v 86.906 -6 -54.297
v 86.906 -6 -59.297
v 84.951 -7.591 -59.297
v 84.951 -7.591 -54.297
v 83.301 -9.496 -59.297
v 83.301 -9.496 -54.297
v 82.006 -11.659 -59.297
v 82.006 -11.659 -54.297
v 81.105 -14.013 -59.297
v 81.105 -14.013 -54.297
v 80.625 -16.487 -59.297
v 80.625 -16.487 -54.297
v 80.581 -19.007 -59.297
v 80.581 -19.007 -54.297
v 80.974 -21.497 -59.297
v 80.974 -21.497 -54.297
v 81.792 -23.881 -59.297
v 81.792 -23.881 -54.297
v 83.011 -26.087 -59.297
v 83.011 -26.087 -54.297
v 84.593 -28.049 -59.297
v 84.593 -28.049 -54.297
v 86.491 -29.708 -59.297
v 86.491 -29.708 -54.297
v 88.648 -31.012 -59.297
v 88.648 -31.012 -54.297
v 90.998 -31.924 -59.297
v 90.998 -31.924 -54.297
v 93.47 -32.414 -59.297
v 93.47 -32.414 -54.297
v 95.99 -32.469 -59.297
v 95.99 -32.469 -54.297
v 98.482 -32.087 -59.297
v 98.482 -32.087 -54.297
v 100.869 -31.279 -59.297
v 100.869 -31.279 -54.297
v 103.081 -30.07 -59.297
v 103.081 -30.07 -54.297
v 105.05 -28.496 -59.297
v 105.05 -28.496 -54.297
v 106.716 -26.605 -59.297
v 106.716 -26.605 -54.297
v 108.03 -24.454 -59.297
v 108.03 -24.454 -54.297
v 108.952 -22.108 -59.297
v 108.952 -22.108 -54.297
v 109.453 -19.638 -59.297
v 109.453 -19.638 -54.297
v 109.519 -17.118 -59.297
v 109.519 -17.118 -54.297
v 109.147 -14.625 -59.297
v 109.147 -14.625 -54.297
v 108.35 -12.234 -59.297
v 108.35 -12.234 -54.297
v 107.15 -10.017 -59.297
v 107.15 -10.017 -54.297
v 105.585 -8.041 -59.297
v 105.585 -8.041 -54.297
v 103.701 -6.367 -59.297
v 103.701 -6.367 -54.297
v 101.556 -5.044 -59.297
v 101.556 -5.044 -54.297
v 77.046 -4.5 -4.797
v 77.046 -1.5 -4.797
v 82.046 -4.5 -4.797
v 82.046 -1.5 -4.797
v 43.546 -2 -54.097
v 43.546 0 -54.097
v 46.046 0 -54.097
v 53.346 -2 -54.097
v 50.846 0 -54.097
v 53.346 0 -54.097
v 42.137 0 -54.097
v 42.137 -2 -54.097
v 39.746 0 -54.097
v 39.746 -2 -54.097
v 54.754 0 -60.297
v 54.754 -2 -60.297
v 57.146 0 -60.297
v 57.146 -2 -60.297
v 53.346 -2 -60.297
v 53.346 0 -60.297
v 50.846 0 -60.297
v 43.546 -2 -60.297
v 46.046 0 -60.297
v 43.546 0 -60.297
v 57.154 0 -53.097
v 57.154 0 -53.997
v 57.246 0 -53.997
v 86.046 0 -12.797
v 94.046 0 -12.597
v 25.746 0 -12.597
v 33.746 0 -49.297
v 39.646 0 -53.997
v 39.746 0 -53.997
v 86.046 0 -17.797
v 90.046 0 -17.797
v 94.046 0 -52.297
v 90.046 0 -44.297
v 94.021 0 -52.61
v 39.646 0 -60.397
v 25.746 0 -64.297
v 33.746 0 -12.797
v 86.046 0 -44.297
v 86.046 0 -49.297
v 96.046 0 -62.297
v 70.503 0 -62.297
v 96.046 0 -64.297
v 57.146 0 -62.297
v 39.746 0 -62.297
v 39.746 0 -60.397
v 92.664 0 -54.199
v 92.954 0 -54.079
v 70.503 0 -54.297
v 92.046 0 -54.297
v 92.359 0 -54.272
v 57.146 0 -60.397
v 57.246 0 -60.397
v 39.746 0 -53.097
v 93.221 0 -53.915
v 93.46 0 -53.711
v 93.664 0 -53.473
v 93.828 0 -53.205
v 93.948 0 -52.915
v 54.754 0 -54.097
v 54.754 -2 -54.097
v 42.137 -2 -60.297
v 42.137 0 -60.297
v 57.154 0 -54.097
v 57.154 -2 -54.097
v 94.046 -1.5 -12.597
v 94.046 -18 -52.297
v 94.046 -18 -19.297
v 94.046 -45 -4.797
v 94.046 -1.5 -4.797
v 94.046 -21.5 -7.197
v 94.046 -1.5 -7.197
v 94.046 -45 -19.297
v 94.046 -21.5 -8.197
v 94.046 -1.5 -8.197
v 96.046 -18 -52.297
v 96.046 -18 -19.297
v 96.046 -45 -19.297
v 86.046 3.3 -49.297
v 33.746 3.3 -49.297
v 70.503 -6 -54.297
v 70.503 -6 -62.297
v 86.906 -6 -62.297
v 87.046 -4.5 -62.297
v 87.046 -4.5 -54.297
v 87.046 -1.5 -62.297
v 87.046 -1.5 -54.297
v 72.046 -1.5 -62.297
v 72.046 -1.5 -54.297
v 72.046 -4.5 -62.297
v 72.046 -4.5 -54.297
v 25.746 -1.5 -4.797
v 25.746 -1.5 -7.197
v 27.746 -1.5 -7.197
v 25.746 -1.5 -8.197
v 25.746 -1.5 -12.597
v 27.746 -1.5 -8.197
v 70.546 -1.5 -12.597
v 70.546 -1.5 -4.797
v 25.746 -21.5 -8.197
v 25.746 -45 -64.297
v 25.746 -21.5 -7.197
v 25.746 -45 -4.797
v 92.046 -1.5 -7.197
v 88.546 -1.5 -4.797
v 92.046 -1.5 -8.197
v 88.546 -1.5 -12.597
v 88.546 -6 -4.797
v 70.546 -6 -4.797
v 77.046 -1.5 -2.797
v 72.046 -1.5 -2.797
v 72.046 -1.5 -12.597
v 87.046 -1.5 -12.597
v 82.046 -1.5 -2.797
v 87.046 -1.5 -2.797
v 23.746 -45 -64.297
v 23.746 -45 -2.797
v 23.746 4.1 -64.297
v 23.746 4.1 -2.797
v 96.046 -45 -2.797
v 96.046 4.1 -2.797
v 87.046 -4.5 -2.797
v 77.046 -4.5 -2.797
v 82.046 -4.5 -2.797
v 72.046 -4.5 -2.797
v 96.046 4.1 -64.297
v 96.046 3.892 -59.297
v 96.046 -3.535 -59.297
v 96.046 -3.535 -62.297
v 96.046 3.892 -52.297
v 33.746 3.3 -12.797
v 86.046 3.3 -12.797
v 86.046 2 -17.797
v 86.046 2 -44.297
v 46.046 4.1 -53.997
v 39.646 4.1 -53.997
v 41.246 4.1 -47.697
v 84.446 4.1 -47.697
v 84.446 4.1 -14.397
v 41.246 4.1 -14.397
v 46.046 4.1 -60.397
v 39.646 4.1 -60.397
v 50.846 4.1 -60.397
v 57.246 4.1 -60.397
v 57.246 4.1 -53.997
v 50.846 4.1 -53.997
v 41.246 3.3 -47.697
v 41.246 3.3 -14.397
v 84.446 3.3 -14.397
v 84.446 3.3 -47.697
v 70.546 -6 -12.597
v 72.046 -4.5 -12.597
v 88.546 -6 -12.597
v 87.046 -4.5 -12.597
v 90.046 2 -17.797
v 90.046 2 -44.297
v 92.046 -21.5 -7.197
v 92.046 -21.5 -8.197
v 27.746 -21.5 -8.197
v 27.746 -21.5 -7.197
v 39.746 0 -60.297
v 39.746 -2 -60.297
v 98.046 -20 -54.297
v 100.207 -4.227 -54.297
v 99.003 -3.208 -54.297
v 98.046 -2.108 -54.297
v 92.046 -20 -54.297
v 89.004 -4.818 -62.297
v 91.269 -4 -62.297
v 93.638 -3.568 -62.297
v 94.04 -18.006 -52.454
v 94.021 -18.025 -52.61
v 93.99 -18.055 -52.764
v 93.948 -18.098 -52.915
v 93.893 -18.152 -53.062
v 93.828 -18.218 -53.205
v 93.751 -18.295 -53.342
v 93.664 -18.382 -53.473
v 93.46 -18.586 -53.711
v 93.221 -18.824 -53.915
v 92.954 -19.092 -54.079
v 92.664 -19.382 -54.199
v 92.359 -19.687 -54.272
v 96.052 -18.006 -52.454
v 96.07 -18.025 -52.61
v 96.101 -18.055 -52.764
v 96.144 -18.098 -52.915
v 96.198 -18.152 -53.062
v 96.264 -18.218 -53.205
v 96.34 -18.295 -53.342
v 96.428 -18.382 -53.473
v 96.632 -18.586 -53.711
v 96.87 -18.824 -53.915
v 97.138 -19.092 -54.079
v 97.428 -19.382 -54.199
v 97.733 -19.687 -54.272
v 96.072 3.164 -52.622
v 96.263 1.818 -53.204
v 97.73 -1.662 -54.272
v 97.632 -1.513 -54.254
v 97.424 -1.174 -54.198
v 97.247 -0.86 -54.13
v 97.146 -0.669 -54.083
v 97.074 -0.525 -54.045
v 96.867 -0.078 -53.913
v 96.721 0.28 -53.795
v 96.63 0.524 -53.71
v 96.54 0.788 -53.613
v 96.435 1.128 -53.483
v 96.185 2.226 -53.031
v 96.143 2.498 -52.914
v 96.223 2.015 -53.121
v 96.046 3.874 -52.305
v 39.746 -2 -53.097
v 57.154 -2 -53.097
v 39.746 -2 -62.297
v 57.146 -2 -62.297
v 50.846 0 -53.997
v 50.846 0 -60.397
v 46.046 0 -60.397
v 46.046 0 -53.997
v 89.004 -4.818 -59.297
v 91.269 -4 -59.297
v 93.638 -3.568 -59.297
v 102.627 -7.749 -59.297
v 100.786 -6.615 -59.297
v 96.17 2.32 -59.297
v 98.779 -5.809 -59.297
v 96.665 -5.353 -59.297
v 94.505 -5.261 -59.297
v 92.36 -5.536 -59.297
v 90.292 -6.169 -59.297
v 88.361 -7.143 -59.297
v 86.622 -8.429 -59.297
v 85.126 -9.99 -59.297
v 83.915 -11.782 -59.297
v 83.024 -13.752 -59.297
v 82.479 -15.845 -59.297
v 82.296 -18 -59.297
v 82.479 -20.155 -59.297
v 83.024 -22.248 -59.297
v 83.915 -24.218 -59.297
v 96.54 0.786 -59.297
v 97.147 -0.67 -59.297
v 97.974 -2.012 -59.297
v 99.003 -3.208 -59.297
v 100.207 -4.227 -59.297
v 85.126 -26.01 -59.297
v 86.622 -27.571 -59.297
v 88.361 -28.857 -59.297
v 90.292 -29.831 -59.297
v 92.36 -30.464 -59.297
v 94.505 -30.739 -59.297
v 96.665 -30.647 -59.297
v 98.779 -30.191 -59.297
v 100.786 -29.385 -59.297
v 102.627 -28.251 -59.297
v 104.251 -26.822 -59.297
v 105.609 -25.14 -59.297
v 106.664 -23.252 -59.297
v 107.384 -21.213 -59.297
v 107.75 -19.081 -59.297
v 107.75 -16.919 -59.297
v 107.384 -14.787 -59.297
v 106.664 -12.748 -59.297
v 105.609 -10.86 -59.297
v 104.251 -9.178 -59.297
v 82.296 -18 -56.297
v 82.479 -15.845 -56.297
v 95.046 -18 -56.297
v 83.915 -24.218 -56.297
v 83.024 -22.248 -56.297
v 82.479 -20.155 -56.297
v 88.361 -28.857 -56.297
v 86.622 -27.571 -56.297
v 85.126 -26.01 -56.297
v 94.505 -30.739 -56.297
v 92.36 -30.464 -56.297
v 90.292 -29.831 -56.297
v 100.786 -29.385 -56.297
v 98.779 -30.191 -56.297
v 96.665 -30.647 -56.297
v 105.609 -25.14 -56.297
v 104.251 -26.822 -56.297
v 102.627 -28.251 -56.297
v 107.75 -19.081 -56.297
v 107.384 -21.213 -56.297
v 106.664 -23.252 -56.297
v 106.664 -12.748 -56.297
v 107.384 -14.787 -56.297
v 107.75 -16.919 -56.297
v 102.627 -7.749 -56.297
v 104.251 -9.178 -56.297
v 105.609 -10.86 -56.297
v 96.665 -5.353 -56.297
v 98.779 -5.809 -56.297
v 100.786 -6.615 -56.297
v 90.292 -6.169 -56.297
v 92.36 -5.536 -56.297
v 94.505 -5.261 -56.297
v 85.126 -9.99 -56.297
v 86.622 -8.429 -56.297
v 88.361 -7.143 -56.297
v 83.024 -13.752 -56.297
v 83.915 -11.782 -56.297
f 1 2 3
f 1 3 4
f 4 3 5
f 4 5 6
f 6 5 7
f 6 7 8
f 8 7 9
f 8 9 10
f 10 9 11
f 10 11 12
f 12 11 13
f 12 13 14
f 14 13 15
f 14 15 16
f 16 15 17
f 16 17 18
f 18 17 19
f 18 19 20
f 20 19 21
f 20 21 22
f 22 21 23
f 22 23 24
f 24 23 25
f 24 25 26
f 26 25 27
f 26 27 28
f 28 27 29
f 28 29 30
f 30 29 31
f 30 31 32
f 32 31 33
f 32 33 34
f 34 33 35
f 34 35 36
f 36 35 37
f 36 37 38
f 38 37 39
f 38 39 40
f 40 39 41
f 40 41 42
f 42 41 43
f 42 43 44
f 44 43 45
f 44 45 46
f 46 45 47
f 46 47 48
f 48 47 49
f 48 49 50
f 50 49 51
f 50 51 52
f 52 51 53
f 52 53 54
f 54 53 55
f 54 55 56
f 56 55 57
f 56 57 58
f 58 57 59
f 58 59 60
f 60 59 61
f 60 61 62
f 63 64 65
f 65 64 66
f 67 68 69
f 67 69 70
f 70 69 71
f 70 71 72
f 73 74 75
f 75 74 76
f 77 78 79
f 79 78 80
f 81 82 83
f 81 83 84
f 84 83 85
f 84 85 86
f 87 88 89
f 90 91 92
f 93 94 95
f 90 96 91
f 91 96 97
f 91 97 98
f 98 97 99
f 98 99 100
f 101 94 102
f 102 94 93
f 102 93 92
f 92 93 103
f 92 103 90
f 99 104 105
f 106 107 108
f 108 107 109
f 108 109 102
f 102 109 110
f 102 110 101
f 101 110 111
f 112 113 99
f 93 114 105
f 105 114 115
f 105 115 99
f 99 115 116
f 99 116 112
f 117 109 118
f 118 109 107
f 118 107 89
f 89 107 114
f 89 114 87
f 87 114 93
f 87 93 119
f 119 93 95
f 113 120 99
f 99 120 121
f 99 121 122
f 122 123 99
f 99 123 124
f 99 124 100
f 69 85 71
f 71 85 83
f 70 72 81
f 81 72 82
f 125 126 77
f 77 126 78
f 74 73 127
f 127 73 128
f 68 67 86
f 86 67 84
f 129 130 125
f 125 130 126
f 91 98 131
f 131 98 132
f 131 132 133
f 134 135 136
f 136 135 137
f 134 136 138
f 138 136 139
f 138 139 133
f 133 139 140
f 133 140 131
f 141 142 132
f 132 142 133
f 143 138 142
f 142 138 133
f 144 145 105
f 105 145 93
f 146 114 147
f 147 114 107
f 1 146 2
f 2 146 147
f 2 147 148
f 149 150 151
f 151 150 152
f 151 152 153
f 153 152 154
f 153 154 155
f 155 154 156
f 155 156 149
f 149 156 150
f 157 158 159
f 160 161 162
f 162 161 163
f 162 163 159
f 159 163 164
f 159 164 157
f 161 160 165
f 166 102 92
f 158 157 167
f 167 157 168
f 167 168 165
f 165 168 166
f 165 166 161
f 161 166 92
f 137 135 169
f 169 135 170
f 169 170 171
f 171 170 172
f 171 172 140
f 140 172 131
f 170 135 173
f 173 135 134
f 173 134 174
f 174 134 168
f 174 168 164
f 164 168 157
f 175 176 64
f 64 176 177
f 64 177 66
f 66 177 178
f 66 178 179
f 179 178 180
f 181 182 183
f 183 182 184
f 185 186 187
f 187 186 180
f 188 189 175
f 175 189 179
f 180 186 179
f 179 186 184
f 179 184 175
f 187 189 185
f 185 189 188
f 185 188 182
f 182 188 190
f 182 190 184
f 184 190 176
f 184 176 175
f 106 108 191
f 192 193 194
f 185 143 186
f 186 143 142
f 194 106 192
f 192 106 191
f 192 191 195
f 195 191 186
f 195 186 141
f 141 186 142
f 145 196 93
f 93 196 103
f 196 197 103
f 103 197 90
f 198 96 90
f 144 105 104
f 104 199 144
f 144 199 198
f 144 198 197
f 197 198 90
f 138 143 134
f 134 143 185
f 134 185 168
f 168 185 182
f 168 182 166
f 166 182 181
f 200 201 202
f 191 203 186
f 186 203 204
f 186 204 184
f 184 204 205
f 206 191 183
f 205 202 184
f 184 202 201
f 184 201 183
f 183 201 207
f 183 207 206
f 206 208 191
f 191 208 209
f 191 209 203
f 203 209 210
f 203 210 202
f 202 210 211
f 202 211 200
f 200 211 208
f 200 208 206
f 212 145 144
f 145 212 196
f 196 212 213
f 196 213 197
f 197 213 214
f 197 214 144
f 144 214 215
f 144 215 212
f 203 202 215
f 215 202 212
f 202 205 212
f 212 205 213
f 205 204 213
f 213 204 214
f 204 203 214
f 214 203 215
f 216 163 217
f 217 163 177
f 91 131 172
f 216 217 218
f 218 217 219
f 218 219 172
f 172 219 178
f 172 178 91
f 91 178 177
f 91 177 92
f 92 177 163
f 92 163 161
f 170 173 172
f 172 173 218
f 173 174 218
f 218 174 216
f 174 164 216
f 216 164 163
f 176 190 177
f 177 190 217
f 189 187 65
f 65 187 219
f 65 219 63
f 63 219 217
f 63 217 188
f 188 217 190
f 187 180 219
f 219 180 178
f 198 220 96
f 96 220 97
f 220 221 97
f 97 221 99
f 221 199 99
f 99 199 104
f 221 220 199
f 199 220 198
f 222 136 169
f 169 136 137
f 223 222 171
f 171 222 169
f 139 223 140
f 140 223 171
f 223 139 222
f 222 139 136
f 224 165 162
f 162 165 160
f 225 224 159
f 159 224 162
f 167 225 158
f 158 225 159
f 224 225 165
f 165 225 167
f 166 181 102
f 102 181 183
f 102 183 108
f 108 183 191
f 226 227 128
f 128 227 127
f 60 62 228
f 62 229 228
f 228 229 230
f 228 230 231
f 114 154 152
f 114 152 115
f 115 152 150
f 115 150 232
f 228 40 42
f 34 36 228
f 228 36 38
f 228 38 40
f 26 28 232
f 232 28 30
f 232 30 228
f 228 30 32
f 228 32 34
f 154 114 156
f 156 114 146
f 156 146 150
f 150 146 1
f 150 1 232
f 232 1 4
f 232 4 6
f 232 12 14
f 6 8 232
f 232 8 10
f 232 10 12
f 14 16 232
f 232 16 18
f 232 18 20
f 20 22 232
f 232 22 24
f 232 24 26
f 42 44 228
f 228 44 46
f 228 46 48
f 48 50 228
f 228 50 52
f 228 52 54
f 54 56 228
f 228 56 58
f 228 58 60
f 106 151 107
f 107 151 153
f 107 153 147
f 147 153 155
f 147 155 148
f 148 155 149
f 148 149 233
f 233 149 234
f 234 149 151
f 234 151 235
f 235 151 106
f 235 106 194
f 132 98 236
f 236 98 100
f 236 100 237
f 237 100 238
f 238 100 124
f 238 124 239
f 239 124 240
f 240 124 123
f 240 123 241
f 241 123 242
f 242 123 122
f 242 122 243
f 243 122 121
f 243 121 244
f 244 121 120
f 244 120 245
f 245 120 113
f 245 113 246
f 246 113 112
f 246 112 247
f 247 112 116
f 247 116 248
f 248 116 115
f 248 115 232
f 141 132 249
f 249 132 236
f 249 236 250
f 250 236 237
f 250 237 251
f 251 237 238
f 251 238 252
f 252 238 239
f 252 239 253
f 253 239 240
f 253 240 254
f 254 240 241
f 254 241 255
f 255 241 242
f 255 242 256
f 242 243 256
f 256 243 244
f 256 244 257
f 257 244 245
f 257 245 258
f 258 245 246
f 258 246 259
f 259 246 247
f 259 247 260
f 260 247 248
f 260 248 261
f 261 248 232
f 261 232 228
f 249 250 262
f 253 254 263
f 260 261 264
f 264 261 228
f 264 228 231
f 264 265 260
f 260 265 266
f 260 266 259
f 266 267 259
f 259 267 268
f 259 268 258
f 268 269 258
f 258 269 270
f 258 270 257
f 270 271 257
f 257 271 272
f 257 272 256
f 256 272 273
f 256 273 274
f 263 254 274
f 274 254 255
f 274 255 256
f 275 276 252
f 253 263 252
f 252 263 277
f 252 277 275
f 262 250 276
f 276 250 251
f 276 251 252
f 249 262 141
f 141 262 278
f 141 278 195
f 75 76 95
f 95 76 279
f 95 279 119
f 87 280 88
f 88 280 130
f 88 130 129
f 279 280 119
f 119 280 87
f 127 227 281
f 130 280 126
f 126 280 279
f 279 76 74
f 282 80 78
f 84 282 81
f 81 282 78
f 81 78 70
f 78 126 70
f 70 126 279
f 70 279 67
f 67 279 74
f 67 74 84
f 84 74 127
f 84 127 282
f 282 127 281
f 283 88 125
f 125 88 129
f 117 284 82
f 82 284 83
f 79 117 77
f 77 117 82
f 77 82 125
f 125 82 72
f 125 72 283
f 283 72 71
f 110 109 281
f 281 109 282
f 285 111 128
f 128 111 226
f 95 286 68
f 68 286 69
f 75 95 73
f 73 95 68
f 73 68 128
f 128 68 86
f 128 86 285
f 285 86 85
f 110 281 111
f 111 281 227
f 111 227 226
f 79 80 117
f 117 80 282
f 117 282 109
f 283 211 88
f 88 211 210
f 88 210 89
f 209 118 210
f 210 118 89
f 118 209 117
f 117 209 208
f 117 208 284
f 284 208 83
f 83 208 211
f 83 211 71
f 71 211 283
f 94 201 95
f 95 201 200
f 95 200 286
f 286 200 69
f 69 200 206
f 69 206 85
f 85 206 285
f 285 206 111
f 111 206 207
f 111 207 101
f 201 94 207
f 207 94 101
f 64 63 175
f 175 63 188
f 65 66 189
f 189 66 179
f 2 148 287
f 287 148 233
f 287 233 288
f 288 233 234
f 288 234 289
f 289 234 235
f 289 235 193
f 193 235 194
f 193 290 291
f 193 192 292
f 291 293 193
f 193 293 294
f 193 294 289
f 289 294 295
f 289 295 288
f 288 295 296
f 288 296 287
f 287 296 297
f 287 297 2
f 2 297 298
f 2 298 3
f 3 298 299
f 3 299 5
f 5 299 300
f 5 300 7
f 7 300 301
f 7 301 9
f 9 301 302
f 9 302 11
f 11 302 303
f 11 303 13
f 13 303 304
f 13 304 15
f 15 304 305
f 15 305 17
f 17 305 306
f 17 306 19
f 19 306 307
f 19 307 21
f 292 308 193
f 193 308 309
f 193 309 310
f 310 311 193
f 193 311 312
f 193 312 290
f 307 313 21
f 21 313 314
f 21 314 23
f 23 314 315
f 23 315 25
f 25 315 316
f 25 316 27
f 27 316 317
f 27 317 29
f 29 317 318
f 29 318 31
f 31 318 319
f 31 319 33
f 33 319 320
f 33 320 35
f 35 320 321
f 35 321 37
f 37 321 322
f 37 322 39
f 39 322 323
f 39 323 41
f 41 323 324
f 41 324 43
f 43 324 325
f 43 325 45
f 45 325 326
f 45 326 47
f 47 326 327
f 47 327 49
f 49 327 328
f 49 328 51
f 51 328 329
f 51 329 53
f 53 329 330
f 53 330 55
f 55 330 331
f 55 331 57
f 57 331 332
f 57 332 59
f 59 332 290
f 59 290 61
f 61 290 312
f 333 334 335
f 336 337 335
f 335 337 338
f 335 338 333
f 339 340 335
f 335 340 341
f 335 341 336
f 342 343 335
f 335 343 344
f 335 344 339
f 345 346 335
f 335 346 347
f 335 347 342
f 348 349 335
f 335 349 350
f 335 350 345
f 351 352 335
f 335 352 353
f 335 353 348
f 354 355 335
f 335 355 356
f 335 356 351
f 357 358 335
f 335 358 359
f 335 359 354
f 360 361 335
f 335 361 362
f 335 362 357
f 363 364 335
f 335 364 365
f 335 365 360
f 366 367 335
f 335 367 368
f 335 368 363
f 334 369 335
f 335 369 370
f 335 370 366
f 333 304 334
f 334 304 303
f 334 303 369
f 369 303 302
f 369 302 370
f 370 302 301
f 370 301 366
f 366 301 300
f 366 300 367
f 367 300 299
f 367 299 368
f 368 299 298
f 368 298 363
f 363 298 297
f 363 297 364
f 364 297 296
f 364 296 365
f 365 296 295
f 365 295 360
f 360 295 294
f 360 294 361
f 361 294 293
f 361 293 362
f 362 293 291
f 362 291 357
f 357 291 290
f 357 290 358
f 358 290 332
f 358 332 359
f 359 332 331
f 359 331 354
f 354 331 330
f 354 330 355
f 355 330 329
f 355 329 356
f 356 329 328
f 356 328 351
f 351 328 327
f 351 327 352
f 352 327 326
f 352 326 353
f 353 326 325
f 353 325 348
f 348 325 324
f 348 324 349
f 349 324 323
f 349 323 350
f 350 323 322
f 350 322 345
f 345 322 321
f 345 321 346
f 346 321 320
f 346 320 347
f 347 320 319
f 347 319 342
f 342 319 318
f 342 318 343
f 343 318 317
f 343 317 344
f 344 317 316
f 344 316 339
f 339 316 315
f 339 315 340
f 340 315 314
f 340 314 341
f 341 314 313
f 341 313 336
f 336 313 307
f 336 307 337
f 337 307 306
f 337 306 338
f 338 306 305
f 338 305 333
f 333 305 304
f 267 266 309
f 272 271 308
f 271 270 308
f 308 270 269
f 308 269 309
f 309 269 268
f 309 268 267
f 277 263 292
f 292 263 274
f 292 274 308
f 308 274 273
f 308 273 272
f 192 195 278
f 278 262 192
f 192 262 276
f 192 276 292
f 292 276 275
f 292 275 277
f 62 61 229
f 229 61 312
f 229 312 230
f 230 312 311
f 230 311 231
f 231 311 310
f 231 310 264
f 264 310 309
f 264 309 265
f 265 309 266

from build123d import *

# Parameters (mm, degrees)
SKETCH1_W            = 72.3
SKETCH1_H            = 56.5
SKETCH1_W_2          = 52.3
SKETCH1_H_2          = 36.5
BOSS_EXTRUDE1_DEPTH  = 3.3
SKETCH2_W            = 72.3
SKETCH2_H            = 2
BOSS_EXTRUDE2_DEPTH  = 45
SKETCH3_W            = 2
SKETCH3_H            = 45
BOSS_EXTRUDE3_DEPTH  = 54.5
SKETCH5_W            = 72.3
SKETCH5_H            = 56.5
SKETCH5_W_2          = 43.2
SKETCH5_H_2          = 33.3
BOSS_EXTRUDE6_DEPTH  = 0.8
SKETCH6_W            = 68.3
SKETCH6_H            = 1.5
BOSS_EXTRUDE7_DEPTH  = 7.8
BOSS_EXTRUDE8_DEPTH  = 7.8
SKETCH8_W            = 18.0427139
SKETCH8_H            = 6
SKETCH8_W_2          = 15
SKETCH8_H_2          = 3
BOSS_EXTRUDE9_DEPTH  = 10
SKETCH9_W            = 4
SKETCH9_H            = 26.5
CUT_EXTRUDE1_DEPTH   = 2
SKETCH10_W           = 2
SKETCH10_H           = 30
CUT_EXTRUDE2_DEPTH   = 40
SKETCH11_W           = 2
SKETCH11_H           = 1
BOSS_EXTRUDE10_DEPTH = 20
SKETCH13_W           = 15
SKETCH13_H           = 3
BOSS_EXTRUDE11_DEPTH = 5
SKETCH12_W           = 6.2
SKETCH12_H           = 6.2
CUT_EXTRUDE3_DEPTH   = 10
SKETCH14_W           = 18.0427139
SKETCH14_H           = 5
CUT_EXTRUDE4_DEPTH   = 25
SKETCH15_W           = 29.613072231
SKETCH15_H           = 15.101269166
CUT_EXTRUDE5_DEPTH   = 2
SKETCH17_W           = 5.5
SKETCH17_H           = 8
BOSS_EXTRUDE12_DEPTH = 6
SKETCH20_W           = 2
SKETCH20_H           = 3
BOSS_EXTRUDE14_DEPTH = 43
SKETCH21_R           = 14.5
BOSS_EXTRUDE15_DEPTH = 8
SKETCH22_R           = 12.75
CUT_EXTRUDE6_DEPTH   = 6
FILLET1_R            = 2
SKETCH23_W           = 17.408302374
SKETCH23_H           = 1
BOSS_EXTRUDE16_DEPTH = 2
BOSS_EXTRUDE17_REACH = 131.062
SKETCH24_W           = 1.408302374
SKETCH24_H           = 2
SKETCH24_W_2         = 1.408302375
SKETCH25_W           = 17.4
SKETCH25_H           = 2
BOSS_EXTRUDE18_DEPTH = 2
SKETCH26_W           = 6.4
SKETCH26_H           = 6.4
CUT_EXTRUDE7_DEPTH   = 4.1
SKETCH28_W           = 5
SKETCH28_H           = 3
CUT_EXTRUDE9_DEPTH   = 2
SKETCH29_R           = 14.5
SKETCH29_R_2         = 12.75
CUT_EXTRUDE10_DEPTH  = 3
FILLET2_R            = 10


with BuildPart() as part:
    # Sketch1 → Boss-Extrude1 (new body)
    with BuildSketch(Plane(origin=(0, 0, 0), x_dir=(1, 0, 0), z_dir=(0, 1, 0))):
        with Locations((59.895731411, 31.047033621)):
            Rectangle(SKETCH1_W, SKETCH1_H)
        with Locations((59.895731411, 31.047033621)):
            Rectangle(SKETCH1_W_2, SKETCH1_H_2, mode=Mode.SUBTRACT)
    extrude(amount=BOSS_EXTRUDE1_DEPTH)

    # Sketch2 → Boss-Extrude2 (add)
    with BuildSketch(Plane.XZ):
        with Locations((59.895731411, -3.797033621)):
            Rectangle(SKETCH2_W, SKETCH2_H)
    extrude(amount=BOSS_EXTRUDE2_DEPTH)

    # Sketch3 → Boss-Extrude3 (add)
    with BuildSketch(Plane(origin=(0, 0, -4.797033621), x_dir=(-1, 0, 0), z_dir=(0, 0, -1))):
        with Locations((-95.045731411, -22.5)):
            Rectangle(SKETCH3_W, SKETCH3_H)
        with Locations((-24.745731411, -22.5)):
            Rectangle(SKETCH3_W, SKETCH3_H)
    extrude(amount=BOSS_EXTRUDE3_DEPTH)

    # Sketch5 → Boss-Extrude6 (add)
    with BuildSketch(Plane(origin=(0, 3.3, 0), x_dir=(1, 0, 0), z_dir=(0, 1, 0))):
        with Locations((59.895731411, 31.047033621)):
            Rectangle(SKETCH5_W, SKETCH5_H)
        with Locations((62.845731411, 31.047033621)):
            Rectangle(SKETCH5_W_2, SKETCH5_H_2, mode=Mode.SUBTRACT)
    extrude(amount=BOSS_EXTRUDE6_DEPTH)

    # Sketch6 → Boss-Extrude7 (add)
    with BuildSketch(Plane(origin=(0, 0, -4.797033621), x_dir=(-1, 0, 0), z_dir=(0, 0, -1))):
        with Locations((-59.895731411, -0.75)):
            Rectangle(SKETCH6_W, SKETCH6_H)
    extrude(amount=BOSS_EXTRUDE7_DEPTH)

    # Sketch7 → Boss-Extrude8 (add)
    with BuildSketch(Plane(origin=(0, 0, -4.797033621), x_dir=(-1, 0, 0), z_dir=(0, 0, -1))):
        Polygon((-87.045731411, -1.5), (-87.045731411, -4.5), (-72.045731411, -4.5), (-72.045731411, -1.5), (-70.545731411, -1.5), (-70.545731411, -6), (-88.545731411, -6), (-88.545731411, -1.5), align=None)
    extrude(amount=BOSS_EXTRUDE8_DEPTH)

    # Sketch8 → Boss-Extrude9 (add)
    with BuildSketch(Plane(origin=(0, 0, -59.297033621), x_dir=(-1, 0, 0), z_dir=(0, 0, -1))):
        with Locations((-79.524374461, -3)):
            Rectangle(SKETCH8_W, SKETCH8_H)
        with Locations((-79.545731411, -3)):
            Rectangle(SKETCH8_W_2, SKETCH8_H_2, mode=Mode.SUBTRACT)
    extrude(amount=-BOSS_EXTRUDE9_DEPTH)

    # Sketch9 → Cut-Extrude1 (cut)
    with BuildSketch(Plane.XZ):
        with Locations((88.045731411, -31.047033621)):
            Rectangle(SKETCH9_W, SKETCH9_H)
    extrude(amount=-CUT_EXTRUDE1_DEPTH, mode=Mode.SUBTRACT)

    # Sketch10 → Cut-Extrude2 (cut)
    with BuildSketch(Plane(origin=(0, 0, -59.297033621), x_dir=(-1, 0, 0), z_dir=(0, 0, -1))):
        with Locations((-95.045731411, -30)):
            Rectangle(SKETCH10_W, SKETCH10_H)
    extrude(amount=-CUT_EXTRUDE2_DEPTH, mode=Mode.SUBTRACT)

    # Sketch11 → Boss-Extrude10 (add)
    with BuildSketch(Plane.XZ.offset(1.5)):
        with Locations((93.045731411, -7.697033621)):
            Rectangle(SKETCH11_W, SKETCH11_H)
        with Locations((26.745731411, -7.697033621)):
            Rectangle(SKETCH11_W, SKETCH11_H)
    extrude(amount=BOSS_EXTRUDE10_DEPTH)

    # Sketch13 → Boss-Extrude11 (add)
    with BuildSketch(Plane(origin=(0, 0, -59.297033621), x_dir=(-1, 0, 0), z_dir=(0, 0, -1))):
        Polygon((-96.045731411, 4.1), (-96.045731411, -15), (-94.045731411, -15), (-94.045731411, 0), (-88.545731411, 0), (-88.545731411, -6), (-70.503017511, -6), (-70.503017511, 0), (-25.745731411, 0), (-25.745731411, -45), (-23.745731411, -45), (-23.745731411, 4.1), align=None)
        with Locations((-79.545731411, -3)):
            Rectangle(SKETCH13_W, SKETCH13_H, mode=Mode.SUBTRACT)
    extrude(amount=BOSS_EXTRUDE11_DEPTH)

    # Sketch12 → Cut-Extrude3 (cut)
    with BuildSketch(Plane(origin=(0, 4.1, 0), x_dir=(1, 0, 0), z_dir=(0, 1, 0))):
        with Locations((42.845731411, 57.197033621)):
            Rectangle(SKETCH12_W, SKETCH12_H)
        with Locations((54.045731411, 57.197033621)):
            Rectangle(SKETCH12_W, SKETCH12_H)
    extrude(amount=-CUT_EXTRUDE3_DEPTH, mode=Mode.SUBTRACT)

    # Sketch14 → Cut-Extrude4 (cut)
    with BuildSketch(Plane.XZ):
        with Locations((79.524374461, -51.797033621)):
            Rectangle(SKETCH14_W, SKETCH14_H)
    extrude(amount=CUT_EXTRUDE4_DEPTH, mode=Mode.SUBTRACT)

    # Sketch15 → Cut-Extrude5 (cut)
    with BuildSketch(Plane(origin=(0, 0, -64.297033621), x_dir=(-1, 0, 0), z_dir=(0, 0, -1))):
        with Locations((-85.309553627, -7.550634583)):
            Rectangle(SKETCH15_W, SKETCH15_H)
    extrude(amount=-CUT_EXTRUDE5_DEPTH, mode=Mode.SUBTRACT)

    # Sketch17 → Boss-Extrude12 (add)
    with BuildSketch(Plane.XZ):
        with Locations((91.295731411, -58.297033621)):
            Rectangle(SKETCH17_W, SKETCH17_H)
    extrude(amount=BOSS_EXTRUDE12_DEPTH)

    # Sketch20 → Boss-Extrude14 (add)
    with BuildSketch(Plane(origin=(0, 0, -19.297033621), x_dir=(-1, 0, 0), z_dir=(0, 0, -1))):
        with Locations((-95.045731411, -16.5)):
            Rectangle(SKETCH20_W, SKETCH20_H)
    extrude(amount=BOSS_EXTRUDE14_DEPTH)

    # Sketch21 → Boss-Extrude15 (add)
    with BuildSketch(Plane(origin=(0, 0, -62.297033621), x_dir=(-1, 0, 0), z_dir=(0, 0, -1))):
        with Locations((-95.045731411, -18)):
            Circle(SKETCH21_R)
    extrude(amount=-BOSS_EXTRUDE15_DEPTH)

    # Sketch22 → Cut-Extrude6 (cut)
    with BuildSketch(Plane(origin=(0, 0, -62.297033621), x_dir=(-1, 0, 0), z_dir=(0, 0, -1))):
        with Locations((-95.045731411, -18)):
            Circle(SKETCH22_R)
    extrude(amount=-CUT_EXTRUDE6_DEPTH, mode=Mode.SUBTRACT)

    # Fillet1
    fillet1_edges = [part.edges().sort_by_distance(p)[0] for p in [
        (94.045731411, -9, -54.297033621),
        (95.045731411, -18, -54.297033621),
        (96.045731411, -10.767261929, -54.297033621),
    ]]
    fillet(fillet1_edges, radius=FILLET1_R)

    # Sketch23 → Boss-Extrude16 (add)
    with BuildSketch(Plane.XZ):
        with Locations((48.449882598, -53.597033621)):
            Rectangle(SKETCH23_W, SKETCH23_H)
    extrude(amount=BOSS_EXTRUDE16_DEPTH)

    # Boss-Extrude17: up to this face of the body (flat: up to its plane)
    boss_extrude17_end = Plane(part.part.faces().sort_by_distance((83.274374461, -0.50799444, -62.297033621))[0])
    # Sketch24 → Boss-Extrude17 (add, up to the picked face)
    with BuildSketch(Plane(origin=(0, 0, -54.097033621), x_dir=(-1, 0, 0), z_dir=(0, 0, -1)), mode=Mode.PRIVATE) as boss_extrude17_sk1:
        with Locations((-54.049882598, -1)):
            Rectangle(SKETCH24_W, SKETCH24_H)
    boss_extrude17_tool1 = split(extrude(boss_extrude17_sk1.sketch, amount=BOSS_EXTRUDE17_REACH, mode=Mode.PRIVATE), bisect_by=boss_extrude17_end, keep=Keep.BOTH, mode=Mode.PRIVATE)
    # Sketch24 → Boss-Extrude17 (add, up to the picked face)
    with BuildSketch(Plane(origin=(0, 0, -54.097033621), x_dir=(-1, 0, 0), z_dir=(0, 0, -1)), mode=Mode.PRIVATE) as boss_extrude17_sk2:
        with Locations((-42.841580224, -1)):
            Rectangle(SKETCH24_W_2, SKETCH24_H)
    boss_extrude17_tool2 = split(extrude(boss_extrude17_sk2.sketch, amount=BOSS_EXTRUDE17_REACH, mode=Mode.PRIVATE), bisect_by=boss_extrude17_end, keep=Keep.BOTH, mode=Mode.PRIVATE)
    add(boss_extrude17_tool1.solids().sort_by(Axis((54.049883, -1, -54.097034), (0, 0, -1)))[0])
    add(boss_extrude17_tool2.solids().sort_by(Axis((42.84158, -1, -54.097034), (0, 0, -1)))[0])

    # Sketch25 → Boss-Extrude18 (add)
    with BuildSketch(Plane.XZ):
        with Locations((48.445731411, -61.297033621)):
            Rectangle(SKETCH25_W, SKETCH25_H)
    extrude(amount=BOSS_EXTRUDE18_DEPTH)

    # Sketch26 → Cut-Extrude7 (cut)
    with BuildSketch(Plane(origin=(0, 4.1, 0), x_dir=(1, 0, 0), z_dir=(0, 1, 0))):
        with Locations((42.845731411, 57.197033621)):
            Rectangle(SKETCH26_W, SKETCH26_H)
        with Locations((54.045731411, 57.197033621)):
            Rectangle(SKETCH26_W, SKETCH26_H)
    extrude(amount=-CUT_EXTRUDE7_DEPTH, mode=Mode.SUBTRACT)

    # Sketch28 → Cut-Extrude9 (cut)
    with BuildSketch(Plane(origin=(0, 0, -4.797033621), x_dir=(-1, 0, 0), z_dir=(0, 0, -1))):
        with Locations((-84.545731411, -3)):
            Rectangle(SKETCH28_W, SKETCH28_H)
        with Locations((-74.545731411, -3)):
            Rectangle(SKETCH28_W, SKETCH28_H)
    extrude(amount=-CUT_EXTRUDE9_DEPTH, mode=Mode.SUBTRACT)

    # Sketch29 → Cut-Extrude10 (cut)
    with BuildSketch(Plane(origin=(0, 0, -62.297033621), x_dir=(-1, 0, 0), z_dir=(0, 0, -1))):
        with Locations((-95.045731411, -18)):
            Circle(SKETCH29_R)
        with Locations((-95.045731411, -18)):
            Circle(SKETCH29_R_2, mode=Mode.SUBTRACT)
    extrude(amount=-CUT_EXTRUDE10_DEPTH, mode=Mode.SUBTRACT)

    # Fillet2
    fillet2_edges = [part.edges().sort_by_distance(p)[0] for p in [
        (96.045731411, -3.534523859, -55.797033621),
    ]]
    fillet(fillet2_edges, radius=FILLET2_R)


solid = part.part
